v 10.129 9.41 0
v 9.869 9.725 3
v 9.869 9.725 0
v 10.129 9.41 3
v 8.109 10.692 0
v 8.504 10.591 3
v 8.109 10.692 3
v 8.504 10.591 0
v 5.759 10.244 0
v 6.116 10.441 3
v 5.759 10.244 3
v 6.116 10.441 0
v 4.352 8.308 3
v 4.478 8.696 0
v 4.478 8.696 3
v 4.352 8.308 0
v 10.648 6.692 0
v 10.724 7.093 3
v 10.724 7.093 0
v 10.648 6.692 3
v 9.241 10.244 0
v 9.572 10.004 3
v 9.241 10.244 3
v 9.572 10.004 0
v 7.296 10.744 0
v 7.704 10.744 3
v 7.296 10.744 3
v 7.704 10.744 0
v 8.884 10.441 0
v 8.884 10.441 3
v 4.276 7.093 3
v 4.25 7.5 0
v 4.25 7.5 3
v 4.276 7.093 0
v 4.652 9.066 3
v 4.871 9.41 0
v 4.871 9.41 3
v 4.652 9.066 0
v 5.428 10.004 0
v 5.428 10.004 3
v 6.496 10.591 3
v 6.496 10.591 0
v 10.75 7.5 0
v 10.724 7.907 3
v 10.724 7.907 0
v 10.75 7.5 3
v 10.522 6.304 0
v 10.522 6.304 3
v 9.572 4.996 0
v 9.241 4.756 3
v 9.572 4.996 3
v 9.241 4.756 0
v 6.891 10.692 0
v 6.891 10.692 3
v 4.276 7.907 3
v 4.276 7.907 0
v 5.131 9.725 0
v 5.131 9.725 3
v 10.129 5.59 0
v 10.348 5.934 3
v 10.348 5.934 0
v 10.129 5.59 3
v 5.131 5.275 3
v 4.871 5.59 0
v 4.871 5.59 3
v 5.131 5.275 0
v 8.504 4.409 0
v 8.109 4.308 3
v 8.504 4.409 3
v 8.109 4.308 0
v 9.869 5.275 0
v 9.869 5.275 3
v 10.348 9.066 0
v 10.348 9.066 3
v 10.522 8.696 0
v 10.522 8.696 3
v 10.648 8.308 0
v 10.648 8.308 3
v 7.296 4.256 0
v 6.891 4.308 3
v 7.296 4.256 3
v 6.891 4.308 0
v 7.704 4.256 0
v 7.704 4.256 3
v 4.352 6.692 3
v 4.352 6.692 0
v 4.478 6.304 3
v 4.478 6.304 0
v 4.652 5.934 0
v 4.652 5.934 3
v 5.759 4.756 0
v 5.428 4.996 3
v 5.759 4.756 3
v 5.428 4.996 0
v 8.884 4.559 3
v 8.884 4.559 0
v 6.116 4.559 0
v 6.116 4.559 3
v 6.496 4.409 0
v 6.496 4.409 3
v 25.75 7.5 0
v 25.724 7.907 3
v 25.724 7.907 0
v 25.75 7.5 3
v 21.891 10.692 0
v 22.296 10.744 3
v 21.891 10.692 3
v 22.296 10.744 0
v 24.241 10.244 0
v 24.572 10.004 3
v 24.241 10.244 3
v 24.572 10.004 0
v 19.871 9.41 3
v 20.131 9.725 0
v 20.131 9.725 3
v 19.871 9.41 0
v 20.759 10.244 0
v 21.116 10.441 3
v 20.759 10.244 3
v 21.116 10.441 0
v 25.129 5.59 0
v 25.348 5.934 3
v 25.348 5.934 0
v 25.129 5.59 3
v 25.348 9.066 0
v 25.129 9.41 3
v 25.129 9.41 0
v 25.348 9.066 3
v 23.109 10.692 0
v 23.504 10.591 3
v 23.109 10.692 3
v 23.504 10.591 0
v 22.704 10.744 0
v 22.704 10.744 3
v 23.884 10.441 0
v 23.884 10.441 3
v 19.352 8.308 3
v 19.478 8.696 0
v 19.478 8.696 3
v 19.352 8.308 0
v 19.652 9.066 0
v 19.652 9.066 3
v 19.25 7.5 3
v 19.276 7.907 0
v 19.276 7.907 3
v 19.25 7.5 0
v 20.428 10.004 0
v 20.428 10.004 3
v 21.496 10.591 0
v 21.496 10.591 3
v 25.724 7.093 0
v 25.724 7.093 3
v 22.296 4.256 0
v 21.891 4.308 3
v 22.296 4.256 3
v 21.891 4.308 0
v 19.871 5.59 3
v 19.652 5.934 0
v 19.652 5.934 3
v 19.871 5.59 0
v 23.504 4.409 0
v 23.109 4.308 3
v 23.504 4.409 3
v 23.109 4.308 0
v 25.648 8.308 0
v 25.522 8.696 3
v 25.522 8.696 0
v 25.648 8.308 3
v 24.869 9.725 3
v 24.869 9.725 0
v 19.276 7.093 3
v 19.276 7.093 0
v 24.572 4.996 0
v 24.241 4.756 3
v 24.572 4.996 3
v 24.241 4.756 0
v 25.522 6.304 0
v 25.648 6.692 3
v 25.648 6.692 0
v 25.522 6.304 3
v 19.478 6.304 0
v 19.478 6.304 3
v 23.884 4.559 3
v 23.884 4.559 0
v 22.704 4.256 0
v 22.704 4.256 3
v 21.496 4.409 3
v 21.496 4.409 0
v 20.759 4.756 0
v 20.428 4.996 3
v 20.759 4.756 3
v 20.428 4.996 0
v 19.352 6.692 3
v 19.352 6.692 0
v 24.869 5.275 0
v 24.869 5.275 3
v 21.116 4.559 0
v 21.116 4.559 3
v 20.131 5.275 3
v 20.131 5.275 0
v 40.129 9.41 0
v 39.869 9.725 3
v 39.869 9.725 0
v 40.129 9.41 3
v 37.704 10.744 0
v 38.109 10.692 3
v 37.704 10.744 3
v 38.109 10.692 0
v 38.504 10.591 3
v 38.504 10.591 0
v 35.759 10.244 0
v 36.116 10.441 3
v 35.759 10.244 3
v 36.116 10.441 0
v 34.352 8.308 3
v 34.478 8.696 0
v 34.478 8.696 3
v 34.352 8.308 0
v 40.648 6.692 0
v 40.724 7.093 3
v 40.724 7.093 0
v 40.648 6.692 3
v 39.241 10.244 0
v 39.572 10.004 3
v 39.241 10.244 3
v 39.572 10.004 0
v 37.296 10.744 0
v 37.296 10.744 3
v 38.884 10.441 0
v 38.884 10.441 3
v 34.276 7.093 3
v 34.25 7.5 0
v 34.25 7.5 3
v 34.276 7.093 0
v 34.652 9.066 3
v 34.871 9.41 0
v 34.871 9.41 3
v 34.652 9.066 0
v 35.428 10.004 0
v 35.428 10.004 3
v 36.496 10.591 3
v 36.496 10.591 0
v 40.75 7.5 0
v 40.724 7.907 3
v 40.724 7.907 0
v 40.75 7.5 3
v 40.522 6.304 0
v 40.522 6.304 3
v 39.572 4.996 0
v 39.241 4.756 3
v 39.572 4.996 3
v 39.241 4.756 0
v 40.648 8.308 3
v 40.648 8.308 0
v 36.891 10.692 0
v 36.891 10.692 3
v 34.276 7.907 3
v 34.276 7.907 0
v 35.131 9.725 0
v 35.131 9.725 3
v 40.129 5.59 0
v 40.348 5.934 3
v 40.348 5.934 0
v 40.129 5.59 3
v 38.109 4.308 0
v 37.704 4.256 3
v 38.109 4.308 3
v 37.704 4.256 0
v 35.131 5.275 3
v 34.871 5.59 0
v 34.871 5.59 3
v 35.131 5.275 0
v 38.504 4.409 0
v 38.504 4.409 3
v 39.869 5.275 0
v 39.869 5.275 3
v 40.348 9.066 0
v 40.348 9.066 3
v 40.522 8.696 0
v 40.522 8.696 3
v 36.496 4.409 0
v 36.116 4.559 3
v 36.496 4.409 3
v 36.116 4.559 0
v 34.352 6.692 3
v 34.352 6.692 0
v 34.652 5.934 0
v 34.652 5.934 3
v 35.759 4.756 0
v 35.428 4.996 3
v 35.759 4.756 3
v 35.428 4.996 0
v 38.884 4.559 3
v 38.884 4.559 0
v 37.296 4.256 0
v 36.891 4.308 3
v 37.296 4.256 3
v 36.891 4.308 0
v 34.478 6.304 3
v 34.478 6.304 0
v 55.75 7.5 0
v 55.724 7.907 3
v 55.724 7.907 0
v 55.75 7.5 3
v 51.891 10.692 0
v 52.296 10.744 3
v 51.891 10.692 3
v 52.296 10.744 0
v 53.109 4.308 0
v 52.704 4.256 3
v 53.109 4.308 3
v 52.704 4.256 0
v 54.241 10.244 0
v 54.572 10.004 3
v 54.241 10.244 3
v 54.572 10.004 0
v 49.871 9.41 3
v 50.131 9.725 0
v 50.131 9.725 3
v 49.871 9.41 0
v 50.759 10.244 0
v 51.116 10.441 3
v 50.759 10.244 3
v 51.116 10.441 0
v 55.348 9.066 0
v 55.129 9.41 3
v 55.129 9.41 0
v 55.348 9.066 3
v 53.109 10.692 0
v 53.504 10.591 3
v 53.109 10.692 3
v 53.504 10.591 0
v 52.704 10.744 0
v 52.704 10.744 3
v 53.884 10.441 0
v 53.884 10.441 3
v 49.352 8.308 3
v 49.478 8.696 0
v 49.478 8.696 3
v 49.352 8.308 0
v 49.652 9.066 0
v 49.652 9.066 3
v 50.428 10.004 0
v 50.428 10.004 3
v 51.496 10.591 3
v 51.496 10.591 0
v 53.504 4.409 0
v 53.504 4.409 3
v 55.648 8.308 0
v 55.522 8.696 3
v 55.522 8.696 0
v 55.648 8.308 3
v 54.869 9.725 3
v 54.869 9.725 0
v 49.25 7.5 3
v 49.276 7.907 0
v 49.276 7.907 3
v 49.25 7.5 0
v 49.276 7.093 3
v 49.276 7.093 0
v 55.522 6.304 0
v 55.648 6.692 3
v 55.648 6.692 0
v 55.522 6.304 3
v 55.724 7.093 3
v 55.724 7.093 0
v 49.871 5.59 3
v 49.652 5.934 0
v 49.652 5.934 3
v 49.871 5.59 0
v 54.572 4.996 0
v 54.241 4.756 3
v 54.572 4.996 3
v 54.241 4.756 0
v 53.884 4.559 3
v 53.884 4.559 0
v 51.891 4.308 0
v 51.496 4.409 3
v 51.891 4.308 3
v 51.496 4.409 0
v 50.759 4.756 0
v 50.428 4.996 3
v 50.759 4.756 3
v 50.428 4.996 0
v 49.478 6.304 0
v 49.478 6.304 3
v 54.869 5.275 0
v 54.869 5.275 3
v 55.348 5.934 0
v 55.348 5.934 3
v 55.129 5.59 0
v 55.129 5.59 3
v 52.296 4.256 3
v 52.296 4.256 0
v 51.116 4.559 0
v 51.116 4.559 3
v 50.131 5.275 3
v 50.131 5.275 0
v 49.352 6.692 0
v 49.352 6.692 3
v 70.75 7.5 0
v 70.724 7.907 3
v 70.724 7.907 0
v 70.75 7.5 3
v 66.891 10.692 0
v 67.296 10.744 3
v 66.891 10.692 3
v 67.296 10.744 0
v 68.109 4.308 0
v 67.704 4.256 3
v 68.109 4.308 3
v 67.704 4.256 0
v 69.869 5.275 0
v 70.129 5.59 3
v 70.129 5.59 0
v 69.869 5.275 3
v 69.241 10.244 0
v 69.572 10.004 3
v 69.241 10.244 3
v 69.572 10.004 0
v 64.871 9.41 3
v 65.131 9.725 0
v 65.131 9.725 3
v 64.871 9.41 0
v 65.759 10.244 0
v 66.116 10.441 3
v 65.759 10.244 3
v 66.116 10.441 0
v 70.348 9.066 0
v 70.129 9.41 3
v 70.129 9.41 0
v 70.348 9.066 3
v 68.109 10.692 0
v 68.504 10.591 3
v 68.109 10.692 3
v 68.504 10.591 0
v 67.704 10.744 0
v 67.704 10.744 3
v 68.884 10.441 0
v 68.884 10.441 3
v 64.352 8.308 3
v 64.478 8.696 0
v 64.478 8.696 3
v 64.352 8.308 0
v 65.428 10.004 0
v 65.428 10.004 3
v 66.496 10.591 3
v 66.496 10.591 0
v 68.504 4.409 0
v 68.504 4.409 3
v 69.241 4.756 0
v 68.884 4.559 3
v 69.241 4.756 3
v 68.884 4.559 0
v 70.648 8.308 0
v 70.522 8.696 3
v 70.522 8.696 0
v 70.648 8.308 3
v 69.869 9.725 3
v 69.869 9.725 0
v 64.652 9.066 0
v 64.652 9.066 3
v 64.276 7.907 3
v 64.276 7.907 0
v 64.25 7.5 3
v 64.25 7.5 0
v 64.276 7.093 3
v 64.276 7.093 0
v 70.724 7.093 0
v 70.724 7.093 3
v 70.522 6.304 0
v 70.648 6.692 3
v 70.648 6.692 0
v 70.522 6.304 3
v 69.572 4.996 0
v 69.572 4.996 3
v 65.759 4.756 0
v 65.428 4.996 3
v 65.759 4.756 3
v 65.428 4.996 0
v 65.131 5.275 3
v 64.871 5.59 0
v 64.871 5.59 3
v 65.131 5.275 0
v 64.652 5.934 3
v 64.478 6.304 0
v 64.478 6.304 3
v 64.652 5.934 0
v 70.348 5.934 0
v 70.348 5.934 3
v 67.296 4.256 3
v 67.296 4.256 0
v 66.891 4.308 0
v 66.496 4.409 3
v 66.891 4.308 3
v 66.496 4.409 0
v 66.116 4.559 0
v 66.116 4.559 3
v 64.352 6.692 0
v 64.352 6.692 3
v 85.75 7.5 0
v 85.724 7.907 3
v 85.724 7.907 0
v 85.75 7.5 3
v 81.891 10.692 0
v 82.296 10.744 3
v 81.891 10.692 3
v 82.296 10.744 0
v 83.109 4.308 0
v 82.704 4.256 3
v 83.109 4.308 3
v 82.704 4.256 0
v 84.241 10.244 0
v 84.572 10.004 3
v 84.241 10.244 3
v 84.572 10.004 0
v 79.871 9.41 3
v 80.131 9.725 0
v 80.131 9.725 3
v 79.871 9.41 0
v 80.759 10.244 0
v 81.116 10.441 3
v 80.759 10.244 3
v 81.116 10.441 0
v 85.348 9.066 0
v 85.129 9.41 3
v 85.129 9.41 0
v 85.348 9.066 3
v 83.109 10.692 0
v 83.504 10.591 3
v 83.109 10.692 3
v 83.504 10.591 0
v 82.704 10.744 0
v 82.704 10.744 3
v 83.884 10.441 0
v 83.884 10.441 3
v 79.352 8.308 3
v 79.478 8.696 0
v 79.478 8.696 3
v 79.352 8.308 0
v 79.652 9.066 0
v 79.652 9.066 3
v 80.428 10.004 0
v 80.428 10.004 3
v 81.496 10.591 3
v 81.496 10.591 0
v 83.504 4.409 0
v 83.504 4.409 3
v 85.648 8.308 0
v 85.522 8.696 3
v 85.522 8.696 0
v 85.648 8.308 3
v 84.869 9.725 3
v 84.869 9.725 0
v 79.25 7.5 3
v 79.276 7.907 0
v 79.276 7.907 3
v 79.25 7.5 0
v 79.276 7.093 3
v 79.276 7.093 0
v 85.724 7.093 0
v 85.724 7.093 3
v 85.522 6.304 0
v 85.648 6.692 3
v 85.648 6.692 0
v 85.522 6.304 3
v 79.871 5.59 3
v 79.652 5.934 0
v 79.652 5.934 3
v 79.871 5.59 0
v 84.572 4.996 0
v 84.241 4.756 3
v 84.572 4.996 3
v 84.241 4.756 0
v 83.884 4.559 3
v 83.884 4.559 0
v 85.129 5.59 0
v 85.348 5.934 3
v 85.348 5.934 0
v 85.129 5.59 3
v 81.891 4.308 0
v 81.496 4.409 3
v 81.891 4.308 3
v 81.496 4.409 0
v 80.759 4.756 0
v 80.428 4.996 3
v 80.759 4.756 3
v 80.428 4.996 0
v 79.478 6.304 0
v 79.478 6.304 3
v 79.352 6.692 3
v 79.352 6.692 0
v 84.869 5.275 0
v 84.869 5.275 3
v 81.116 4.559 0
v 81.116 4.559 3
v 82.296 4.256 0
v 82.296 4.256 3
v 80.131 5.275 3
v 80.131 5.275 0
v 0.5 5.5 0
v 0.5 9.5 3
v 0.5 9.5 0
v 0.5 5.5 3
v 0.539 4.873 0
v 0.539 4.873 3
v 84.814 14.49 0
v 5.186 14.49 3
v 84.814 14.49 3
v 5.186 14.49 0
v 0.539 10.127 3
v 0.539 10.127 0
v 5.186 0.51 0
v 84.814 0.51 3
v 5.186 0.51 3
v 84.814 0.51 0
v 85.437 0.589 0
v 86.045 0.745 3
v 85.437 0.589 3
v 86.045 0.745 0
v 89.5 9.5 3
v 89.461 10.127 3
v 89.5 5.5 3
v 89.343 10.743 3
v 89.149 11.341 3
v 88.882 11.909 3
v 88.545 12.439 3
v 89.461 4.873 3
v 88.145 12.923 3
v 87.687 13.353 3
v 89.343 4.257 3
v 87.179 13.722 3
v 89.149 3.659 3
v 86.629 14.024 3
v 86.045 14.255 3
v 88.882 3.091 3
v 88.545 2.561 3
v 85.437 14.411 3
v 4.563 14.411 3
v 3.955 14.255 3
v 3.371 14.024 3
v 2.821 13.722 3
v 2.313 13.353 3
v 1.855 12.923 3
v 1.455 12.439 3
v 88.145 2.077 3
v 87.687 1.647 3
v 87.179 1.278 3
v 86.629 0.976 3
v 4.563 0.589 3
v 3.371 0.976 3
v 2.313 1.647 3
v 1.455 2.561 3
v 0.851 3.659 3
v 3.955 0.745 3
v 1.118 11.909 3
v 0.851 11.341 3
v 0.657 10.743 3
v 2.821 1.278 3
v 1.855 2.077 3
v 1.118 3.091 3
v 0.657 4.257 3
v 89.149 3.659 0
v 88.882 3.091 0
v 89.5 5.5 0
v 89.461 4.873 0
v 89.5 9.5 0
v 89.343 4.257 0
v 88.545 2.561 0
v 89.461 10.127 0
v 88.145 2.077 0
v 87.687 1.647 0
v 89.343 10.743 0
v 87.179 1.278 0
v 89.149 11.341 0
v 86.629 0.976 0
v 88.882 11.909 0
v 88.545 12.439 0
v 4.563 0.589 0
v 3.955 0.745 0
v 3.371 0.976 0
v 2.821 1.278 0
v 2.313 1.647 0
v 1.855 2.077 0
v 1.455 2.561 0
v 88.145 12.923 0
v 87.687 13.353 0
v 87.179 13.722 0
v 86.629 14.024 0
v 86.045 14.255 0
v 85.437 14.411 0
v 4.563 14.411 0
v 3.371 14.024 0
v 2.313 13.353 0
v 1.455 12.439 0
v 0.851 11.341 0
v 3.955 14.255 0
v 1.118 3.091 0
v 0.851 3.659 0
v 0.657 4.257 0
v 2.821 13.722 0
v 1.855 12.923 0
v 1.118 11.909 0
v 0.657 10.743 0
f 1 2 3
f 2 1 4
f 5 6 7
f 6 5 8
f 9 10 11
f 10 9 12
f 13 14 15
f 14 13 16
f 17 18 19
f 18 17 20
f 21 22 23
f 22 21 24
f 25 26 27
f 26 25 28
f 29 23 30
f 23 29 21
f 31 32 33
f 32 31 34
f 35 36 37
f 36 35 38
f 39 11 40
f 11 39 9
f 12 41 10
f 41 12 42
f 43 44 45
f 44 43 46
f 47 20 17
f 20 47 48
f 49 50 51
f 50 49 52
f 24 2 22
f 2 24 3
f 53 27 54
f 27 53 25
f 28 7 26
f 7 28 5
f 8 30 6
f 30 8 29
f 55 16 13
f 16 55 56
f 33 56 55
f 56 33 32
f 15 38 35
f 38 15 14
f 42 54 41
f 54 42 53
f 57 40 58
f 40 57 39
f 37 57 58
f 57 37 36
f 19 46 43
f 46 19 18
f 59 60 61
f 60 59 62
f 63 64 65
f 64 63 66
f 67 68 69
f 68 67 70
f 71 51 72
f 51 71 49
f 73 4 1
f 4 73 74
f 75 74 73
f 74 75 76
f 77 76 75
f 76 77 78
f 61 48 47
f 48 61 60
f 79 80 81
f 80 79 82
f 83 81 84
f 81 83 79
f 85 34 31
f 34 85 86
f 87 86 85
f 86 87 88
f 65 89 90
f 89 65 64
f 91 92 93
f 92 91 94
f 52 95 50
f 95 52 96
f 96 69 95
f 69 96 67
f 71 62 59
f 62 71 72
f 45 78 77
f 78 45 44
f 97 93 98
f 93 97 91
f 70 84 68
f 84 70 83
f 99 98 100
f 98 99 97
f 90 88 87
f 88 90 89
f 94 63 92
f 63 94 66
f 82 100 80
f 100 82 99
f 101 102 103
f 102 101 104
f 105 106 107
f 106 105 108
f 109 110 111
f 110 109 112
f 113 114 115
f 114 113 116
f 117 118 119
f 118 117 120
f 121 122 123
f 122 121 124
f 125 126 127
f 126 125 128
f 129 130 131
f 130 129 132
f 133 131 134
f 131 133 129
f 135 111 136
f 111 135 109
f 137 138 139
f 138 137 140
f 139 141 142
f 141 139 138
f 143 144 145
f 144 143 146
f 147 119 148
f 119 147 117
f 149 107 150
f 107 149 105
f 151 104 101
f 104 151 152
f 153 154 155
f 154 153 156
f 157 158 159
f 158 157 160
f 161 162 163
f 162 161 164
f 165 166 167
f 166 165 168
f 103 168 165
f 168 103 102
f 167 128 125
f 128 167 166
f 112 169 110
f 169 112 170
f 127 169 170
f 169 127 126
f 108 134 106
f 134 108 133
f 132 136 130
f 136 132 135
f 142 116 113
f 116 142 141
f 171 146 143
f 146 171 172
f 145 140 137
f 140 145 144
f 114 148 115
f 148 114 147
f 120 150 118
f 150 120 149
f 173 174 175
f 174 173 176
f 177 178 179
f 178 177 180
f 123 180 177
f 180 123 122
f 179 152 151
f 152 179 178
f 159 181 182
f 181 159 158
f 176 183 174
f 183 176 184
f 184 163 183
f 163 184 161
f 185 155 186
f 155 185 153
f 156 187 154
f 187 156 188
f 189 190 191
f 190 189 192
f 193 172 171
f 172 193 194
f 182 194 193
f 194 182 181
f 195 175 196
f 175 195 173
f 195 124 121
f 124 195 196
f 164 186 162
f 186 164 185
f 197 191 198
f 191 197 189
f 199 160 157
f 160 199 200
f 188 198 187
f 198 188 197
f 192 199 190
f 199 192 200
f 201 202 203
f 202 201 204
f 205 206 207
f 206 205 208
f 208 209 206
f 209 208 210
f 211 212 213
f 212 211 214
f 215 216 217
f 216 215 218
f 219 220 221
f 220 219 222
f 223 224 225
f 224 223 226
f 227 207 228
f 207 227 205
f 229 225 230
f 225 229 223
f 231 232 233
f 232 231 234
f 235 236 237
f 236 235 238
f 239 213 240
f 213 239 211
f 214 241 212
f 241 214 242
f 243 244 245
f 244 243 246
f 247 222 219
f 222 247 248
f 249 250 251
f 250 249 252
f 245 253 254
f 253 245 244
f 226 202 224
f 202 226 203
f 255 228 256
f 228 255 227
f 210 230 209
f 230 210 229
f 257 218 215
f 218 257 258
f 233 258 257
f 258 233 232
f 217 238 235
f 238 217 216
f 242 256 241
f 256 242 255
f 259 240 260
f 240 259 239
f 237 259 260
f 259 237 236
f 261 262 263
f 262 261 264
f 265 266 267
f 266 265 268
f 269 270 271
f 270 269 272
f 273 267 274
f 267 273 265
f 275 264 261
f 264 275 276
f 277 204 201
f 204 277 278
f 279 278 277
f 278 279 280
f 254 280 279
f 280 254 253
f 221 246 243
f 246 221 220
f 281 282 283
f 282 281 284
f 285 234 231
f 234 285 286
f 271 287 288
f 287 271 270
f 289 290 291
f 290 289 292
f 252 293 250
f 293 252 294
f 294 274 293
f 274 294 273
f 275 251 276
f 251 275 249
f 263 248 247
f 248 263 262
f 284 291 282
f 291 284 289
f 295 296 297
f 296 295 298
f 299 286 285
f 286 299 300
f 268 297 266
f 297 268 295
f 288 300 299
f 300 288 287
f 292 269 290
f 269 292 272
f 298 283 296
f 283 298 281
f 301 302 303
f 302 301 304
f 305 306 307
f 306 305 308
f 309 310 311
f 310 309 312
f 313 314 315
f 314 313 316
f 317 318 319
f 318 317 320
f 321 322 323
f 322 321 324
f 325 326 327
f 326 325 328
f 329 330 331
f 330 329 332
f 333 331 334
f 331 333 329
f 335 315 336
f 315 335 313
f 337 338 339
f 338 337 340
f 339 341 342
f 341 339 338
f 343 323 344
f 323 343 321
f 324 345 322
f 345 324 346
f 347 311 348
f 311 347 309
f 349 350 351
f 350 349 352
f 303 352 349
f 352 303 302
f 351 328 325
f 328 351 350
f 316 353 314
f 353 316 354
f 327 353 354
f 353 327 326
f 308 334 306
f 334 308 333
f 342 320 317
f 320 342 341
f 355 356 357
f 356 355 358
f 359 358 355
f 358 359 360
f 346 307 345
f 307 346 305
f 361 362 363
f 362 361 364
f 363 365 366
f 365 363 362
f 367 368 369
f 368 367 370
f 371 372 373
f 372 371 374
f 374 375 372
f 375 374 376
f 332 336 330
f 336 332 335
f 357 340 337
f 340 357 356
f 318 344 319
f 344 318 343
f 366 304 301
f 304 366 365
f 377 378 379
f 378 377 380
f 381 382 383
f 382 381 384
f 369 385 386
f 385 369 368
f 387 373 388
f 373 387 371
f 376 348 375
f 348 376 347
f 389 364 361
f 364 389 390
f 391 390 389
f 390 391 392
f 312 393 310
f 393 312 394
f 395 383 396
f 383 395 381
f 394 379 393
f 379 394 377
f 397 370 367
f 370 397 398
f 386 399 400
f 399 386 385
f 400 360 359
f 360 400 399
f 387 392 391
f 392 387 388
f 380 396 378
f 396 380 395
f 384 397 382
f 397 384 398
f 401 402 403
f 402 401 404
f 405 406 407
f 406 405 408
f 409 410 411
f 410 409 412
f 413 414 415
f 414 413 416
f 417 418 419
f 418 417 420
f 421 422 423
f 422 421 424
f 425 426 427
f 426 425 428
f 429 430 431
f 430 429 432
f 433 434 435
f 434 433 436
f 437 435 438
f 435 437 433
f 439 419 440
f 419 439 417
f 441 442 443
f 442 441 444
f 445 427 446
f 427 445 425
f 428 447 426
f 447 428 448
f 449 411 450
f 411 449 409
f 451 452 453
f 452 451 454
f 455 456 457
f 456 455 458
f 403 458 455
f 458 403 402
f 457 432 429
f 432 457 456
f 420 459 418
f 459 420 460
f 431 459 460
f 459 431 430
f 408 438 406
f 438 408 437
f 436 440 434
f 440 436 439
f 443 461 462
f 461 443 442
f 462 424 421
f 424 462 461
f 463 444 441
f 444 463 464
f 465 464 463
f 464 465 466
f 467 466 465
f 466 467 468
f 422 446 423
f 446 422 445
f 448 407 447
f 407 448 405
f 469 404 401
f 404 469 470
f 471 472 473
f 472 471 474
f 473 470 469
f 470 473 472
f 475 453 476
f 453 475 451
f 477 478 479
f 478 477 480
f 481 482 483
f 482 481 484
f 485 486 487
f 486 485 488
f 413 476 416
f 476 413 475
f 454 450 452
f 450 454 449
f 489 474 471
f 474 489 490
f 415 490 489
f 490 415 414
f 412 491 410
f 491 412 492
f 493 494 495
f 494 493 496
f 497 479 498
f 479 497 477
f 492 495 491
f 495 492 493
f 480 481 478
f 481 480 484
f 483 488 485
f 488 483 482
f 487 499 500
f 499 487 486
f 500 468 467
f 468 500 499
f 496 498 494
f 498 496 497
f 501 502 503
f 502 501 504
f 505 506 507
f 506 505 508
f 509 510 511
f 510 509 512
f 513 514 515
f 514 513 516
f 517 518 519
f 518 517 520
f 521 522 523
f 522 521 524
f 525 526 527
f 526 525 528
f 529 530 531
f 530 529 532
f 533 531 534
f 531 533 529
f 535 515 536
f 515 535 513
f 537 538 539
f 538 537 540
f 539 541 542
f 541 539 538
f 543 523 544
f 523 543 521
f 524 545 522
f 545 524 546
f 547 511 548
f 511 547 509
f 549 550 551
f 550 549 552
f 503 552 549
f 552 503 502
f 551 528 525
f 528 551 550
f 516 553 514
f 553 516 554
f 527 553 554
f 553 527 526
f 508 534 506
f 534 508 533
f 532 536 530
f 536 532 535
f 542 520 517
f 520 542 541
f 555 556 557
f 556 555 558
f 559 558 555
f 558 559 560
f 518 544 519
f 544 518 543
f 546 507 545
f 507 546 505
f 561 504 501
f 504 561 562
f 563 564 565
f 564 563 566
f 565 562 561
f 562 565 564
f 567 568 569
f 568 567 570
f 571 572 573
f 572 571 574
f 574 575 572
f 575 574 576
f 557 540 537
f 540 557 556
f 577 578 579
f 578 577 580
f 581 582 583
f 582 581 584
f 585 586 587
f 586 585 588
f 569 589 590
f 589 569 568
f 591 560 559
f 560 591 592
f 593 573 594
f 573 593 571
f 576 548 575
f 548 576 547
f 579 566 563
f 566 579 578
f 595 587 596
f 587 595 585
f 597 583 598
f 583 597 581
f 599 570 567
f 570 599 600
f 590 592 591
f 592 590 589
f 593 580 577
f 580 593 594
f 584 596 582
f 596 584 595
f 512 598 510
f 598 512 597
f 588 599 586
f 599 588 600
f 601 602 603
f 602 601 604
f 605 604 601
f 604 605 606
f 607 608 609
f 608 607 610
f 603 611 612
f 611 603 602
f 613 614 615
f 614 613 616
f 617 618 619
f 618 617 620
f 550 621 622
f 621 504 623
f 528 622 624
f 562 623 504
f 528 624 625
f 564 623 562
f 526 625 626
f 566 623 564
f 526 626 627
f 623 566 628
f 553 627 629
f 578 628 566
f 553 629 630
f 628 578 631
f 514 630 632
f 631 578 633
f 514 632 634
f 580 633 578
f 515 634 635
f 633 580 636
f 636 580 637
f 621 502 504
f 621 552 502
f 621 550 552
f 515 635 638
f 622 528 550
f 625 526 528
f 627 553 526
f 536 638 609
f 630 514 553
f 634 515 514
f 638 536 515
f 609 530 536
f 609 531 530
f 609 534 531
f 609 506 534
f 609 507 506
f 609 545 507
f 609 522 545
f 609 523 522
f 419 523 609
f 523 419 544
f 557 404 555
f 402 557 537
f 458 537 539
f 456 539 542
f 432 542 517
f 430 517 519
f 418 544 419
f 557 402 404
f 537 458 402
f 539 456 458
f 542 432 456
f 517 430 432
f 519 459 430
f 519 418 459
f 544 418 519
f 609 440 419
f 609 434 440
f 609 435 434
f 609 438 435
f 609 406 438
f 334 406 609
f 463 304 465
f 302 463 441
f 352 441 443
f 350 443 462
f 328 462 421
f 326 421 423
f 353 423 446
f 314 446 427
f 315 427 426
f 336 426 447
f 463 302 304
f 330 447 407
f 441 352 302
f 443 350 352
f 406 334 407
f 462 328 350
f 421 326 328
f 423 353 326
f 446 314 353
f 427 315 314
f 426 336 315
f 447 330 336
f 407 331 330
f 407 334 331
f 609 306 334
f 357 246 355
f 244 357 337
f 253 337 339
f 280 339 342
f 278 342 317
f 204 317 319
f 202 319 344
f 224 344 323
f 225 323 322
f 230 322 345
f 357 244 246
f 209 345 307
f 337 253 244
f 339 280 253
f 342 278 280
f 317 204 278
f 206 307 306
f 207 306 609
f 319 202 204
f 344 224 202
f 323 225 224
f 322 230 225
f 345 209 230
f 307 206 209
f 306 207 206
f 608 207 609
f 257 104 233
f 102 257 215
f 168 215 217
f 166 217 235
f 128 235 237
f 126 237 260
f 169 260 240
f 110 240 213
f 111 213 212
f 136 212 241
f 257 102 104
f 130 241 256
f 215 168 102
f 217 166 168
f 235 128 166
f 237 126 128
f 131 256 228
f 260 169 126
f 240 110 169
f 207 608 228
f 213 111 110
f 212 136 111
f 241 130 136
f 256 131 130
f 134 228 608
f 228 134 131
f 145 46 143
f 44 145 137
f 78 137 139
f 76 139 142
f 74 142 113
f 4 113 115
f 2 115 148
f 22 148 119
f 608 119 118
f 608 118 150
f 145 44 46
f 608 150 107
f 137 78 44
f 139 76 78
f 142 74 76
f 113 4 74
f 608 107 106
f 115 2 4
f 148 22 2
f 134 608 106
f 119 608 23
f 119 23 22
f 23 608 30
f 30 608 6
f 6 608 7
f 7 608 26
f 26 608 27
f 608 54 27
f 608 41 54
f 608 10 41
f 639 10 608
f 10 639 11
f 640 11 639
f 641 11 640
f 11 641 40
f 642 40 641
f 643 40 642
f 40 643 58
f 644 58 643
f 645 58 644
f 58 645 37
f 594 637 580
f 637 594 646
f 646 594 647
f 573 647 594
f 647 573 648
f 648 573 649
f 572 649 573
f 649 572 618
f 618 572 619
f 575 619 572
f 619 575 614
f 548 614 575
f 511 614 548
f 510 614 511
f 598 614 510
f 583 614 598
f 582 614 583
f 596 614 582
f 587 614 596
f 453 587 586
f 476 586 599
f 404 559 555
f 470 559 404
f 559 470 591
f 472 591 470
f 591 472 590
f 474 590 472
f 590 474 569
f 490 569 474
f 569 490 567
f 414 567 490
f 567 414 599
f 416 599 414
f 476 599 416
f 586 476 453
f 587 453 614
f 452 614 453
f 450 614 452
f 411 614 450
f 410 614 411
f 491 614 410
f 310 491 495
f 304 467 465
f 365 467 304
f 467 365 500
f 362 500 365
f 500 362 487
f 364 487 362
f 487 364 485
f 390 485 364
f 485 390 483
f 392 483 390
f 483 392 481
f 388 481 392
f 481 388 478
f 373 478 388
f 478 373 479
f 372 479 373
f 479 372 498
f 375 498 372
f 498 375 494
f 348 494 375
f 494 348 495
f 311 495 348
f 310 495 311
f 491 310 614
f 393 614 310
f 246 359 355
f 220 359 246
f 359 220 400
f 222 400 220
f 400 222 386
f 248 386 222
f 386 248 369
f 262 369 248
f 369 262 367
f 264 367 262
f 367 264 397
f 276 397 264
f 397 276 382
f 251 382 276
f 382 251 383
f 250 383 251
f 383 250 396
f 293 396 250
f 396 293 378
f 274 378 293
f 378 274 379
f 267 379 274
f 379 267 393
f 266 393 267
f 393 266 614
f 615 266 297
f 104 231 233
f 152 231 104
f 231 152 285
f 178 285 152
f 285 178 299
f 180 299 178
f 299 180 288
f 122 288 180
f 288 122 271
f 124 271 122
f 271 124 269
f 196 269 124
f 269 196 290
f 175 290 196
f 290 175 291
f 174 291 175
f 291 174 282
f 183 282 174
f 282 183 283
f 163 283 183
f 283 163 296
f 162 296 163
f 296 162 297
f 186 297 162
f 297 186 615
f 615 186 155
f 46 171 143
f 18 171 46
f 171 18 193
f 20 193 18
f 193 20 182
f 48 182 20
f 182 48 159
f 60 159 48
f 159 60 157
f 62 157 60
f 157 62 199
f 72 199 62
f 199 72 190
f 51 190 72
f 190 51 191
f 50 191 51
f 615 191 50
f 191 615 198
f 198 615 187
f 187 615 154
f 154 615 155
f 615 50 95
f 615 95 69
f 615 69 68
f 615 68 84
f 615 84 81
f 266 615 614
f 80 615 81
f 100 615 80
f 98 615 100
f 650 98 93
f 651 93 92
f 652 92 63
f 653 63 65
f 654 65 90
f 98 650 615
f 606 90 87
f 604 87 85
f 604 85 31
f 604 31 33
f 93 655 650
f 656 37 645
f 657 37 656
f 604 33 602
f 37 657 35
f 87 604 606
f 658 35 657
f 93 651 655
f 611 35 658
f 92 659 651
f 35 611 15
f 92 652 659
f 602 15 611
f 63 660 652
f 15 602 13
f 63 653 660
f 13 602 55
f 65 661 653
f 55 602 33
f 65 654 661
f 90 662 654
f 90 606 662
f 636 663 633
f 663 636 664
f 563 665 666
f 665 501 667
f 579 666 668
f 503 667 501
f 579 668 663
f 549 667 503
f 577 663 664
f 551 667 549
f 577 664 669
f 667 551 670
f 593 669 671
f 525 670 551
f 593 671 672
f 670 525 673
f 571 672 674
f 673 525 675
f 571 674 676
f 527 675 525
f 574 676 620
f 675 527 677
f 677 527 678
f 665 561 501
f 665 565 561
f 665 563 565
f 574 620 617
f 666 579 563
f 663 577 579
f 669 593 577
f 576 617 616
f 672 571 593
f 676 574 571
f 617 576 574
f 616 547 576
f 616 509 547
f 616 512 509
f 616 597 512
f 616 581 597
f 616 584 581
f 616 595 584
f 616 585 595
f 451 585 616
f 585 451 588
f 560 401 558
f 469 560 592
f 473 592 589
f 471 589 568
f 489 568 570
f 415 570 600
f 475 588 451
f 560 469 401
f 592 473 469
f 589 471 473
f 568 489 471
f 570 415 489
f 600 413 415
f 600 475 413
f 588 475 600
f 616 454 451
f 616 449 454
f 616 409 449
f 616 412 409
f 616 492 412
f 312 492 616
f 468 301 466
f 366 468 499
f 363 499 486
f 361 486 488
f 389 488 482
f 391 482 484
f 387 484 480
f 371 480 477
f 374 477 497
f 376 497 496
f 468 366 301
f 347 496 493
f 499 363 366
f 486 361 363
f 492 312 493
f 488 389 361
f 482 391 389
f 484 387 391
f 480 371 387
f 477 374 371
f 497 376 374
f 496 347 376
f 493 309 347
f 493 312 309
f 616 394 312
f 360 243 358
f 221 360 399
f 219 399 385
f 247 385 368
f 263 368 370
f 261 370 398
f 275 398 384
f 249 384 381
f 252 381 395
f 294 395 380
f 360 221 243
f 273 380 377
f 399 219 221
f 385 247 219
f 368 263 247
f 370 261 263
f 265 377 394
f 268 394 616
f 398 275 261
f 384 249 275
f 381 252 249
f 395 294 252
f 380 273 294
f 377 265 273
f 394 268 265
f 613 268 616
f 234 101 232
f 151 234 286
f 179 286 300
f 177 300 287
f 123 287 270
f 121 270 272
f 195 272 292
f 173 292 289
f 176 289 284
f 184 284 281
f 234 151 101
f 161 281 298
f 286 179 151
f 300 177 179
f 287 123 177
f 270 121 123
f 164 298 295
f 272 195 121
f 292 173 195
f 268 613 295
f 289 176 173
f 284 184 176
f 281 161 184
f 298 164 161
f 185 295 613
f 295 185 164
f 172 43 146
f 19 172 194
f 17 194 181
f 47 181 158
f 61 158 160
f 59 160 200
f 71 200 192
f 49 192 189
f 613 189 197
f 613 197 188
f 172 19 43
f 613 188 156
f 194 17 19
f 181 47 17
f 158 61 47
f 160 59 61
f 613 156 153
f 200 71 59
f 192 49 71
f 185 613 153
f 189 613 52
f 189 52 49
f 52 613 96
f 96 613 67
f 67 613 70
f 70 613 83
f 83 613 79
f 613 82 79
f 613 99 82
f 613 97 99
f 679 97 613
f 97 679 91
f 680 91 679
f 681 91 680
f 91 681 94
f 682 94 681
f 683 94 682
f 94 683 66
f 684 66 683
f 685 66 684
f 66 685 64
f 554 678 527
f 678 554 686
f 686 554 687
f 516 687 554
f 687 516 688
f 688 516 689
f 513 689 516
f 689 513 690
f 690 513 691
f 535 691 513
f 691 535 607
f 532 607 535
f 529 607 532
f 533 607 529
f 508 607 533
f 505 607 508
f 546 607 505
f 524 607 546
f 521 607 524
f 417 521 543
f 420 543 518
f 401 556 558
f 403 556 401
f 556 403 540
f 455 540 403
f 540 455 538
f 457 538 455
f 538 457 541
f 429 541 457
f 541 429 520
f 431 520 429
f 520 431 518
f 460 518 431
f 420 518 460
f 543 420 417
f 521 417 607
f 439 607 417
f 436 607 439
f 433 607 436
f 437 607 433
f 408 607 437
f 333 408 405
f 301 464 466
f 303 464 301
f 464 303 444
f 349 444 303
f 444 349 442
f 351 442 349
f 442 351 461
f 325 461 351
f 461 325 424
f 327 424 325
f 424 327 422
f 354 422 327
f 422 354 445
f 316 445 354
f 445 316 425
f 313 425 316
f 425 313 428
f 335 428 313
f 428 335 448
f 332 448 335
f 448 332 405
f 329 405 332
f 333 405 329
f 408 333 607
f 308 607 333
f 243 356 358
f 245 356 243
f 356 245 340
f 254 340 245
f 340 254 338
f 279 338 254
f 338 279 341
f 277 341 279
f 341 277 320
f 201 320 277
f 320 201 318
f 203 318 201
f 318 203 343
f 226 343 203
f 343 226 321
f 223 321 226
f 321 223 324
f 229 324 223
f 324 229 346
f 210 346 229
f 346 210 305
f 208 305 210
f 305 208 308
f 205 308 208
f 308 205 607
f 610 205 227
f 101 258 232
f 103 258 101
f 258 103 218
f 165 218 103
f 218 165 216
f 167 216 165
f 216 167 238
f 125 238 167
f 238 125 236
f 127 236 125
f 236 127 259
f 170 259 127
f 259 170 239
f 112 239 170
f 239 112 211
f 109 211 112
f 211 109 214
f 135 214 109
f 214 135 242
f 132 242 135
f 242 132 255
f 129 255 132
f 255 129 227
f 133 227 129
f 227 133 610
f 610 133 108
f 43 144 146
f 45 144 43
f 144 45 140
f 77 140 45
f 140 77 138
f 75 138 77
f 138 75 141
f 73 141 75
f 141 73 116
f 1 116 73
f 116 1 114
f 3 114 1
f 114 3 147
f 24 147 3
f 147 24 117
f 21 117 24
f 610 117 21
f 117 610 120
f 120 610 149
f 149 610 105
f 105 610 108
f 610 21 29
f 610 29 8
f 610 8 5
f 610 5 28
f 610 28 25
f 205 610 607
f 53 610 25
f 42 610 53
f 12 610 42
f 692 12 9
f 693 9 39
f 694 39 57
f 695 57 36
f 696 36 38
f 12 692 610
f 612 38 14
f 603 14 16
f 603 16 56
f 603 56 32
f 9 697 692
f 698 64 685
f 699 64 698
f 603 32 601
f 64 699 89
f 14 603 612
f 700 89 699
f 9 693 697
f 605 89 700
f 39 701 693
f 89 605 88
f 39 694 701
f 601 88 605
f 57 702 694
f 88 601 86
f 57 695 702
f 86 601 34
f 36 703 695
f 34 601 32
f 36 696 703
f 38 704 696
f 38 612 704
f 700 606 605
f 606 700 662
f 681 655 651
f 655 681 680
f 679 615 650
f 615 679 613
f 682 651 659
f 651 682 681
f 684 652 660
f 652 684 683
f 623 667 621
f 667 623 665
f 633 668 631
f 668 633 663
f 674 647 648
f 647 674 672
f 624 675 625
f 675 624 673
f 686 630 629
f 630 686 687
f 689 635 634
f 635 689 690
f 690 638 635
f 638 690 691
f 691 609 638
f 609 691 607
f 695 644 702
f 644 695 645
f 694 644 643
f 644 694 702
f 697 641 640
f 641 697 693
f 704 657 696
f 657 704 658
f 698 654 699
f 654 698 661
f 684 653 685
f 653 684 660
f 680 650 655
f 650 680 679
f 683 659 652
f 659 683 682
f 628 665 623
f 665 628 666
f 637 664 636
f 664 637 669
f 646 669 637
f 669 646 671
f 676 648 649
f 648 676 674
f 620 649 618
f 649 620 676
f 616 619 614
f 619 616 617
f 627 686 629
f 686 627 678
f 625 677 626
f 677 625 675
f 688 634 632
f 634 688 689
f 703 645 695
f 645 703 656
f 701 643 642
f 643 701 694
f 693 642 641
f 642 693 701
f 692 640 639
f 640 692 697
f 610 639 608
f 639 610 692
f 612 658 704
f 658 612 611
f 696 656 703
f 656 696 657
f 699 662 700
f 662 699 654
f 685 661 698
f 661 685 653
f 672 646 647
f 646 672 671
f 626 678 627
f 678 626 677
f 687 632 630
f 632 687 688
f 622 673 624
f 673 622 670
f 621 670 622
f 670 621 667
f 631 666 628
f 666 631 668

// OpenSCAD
// Generated by SolidPython 1.1.3 on 2023-01-30 13:48:21
$fn = 50;


difference() {
	union() {
		translate(v = [45.0000000000, 7.5000000000, 0]) {
			rotate(a = [0, 0, 0]) {
				hull() {
					translate(v = [-39.5000000000, 2.0000000000, 0]) {
						rotate(a = [0, 0, 0]) {
							translate(v = [0, 0, 0]) {
								rotate(a = [0, 0, 0]) {
									cylinder(h = 3, r = 5);
								}
							}
						}
					}
					translate(v = [39.5000000000, 2.0000000000, 0]) {
						rotate(a = [0, 0, 0]) {
							translate(v = [0, 0, 0]) {
								rotate(a = [0, 0, 0]) {
									cylinder(h = 3, r = 5);
								}
							}
						}
					}
					translate(v = [-39.5000000000, -2.0000000000, 0]) {
						rotate(a = [0, 0, 0]) {
							translate(v = [0, 0, 0]) {
								rotate(a = [0, 0, 0]) {
									cylinder(h = 3, r = 5);
								}
							}
						}
					}
					translate(v = [39.5000000000, -2.0000000000, 0]) {
						rotate(a = [0, 0, 0]) {
							translate(v = [0, 0, 0]) {
								rotate(a = [0, 0, 0]) {
									cylinder(h = 3, r = 5);
								}
							}
						}
					}
				}
			}
		}
	}
	union() {
		translate(v = [7.5000000000, 7.5000000000, 0]) {
			rotate(a = [0, 0, 0]) {
				translate(v = [0, 0, -50]) {
					rotate(a = [0, 0, 0]) {
						cylinder(h = 100, r = 3.2500000000);
					}
				}
			}
		}
		translate(v = [22.5000000000, 7.5000000000, 0]) {
			rotate(a = [0, 0, 0]) {
				translate(v = [0, 0, -50]) {
					rotate(a = [0, 0, 0]) {
						cylinder(h = 100, r = 3.2500000000);
					}
				}
			}
		}
		translate(v = [37.5000000000, 7.5000000000, 0]) {
			rotate(a = [0, 0, 0]) {
				translate(v = [0, 0, -50]) {
					rotate(a = [0, 0, 0]) {
						cylinder(h = 100, r = 3.2500000000);
					}
				}
			}
		}
		translate(v = [52.5000000000, 7.5000000000, 0]) {
			rotate(a = [0, 0, 0]) {
				translate(v = [0, 0, -50]) {
					rotate(a = [0, 0, 0]) {
						cylinder(h = 100, r = 3.2500000000);
					}
				}
			}
		}
		translate(v = [67.5000000000, 7.5000000000, 0]) {
			rotate(a = [0, 0, 0]) {
				translate(v = [0, 0, -50]) {
					rotate(a = [0, 0, 0]) {
						cylinder(h = 100, r = 3.2500000000);
					}
				}
			}
		}
		translate(v = [82.5000000000, 7.5000000000, 0]) {
			rotate(a = [0, 0, 0]) {
				translate(v = [0, 0, -50]) {
					rotate(a = [0, 0, 0]) {
						cylinder(h = 100, r = 3.2500000000);
					}
				}
			}
		}
	}
}
/***********************************************
*********      SolidPython code:      **********
************************************************
 
from solid import *
import os
import subprocess

import oomB

import opsc_library_gen

mode = "laser"
#mode = "3d_print"

defined_objects = {}

radius_dict = {}
countersunk_dict = {}


def set_mode(m):
    global mode
    mode = m
    radius_dict['M6'] = 6.5/2
    radius_dict['M3'] = 3.3/2
    if mode == "laser":
        radius_dict['M6'] = 6/2
        radius_dict['M3'] = 3/2

    countersunk_dict['M3'] = {}
    countersunk_dict['M3']['little_rad'] = radius_dict['M3']
    countersunk_dict['M3']['big_rad'] = (5.5+0.6)/2
    if mode == "laser":
        countersunk_dict['M3']['big_rad'] = (4.75+0.6)/2
        countersunk_dict['M3']['little_rad'] = (4.75+0.6)/2

    countersunk_dict['M3']['height'] = 1.7


def opsc_make_object(filename, objects, save_type="none",resolution=50, layers = 1, tilediff = 200, mode="laser"):
    set_mode(mode)
    save_type = save_type.lower()
    os.makedirs(os.path.dirname(filename), exist_ok=True)
    final_object = opsc_get_object(objects)
    # Save the final object to the specified filename    
    scad_render_to_file(final_object, filename, file_header='$fn = %s;' % resolution, include_orig_code=True)
    if mode == "laser":
        filename_laser = filename.replace(".scad","-flat.scad")
        scad_render_to_file(getLaser(final_object, layers=layers, tilediff=tilediff), filename_laser, file_header='$fn = %s;' % resolution, include_orig_code=True)
        if save_type == "all":
            saveToAll(filename_laser)
        elif save_type == "dxf":
            saveToDxf(filename_laser)
    if save_type == "all":
        saveToAll(filename)
    elif save_type == "dxf":
        saveToDxf(filename)


def opsc_get_object(objects):
    # Create the solidpython objects
    positive_objects = [get_opsc_item(obj) for obj in objects if obj['type'] == 'positive']
    negative_objects = [get_opsc_item(obj) for obj in objects if obj['type'] == 'negative']
    # Union the positive objects
    positive_object = union()(*positive_objects)
    # Union the negative objects
    negative_object = union()(*negative_objects)
    # Create the final object by subtracting the negative objects from the positive objects
    return difference()(positive_object, negative_object)

def get_opsc_item(params):
    # A dictionary to map radius string values to numerical values
    #radius_dict = {'small': 5, 'medium': 10, 'large': 15}
    # An array of function names for basic shapes
    basic_shapes = ['cube', 'sphere', 'cylinder']
    
    # An array of function names for other shapes
    other_shapes = ['hole', 'slot', 'rounded_rectangle', 'countersunk']
    


    # Convert radius to r if present, and remove radius from the params dictionary
    if 'radius' in params:
        if isinstance(params['radius'], str):
            # Use the radius_dict to map the radius string value to a numerical value
            params['r'] = radius_dict[params['radius']]
        else:
            params['r'] = params['radius']
        del params['radius']
    

    # Check if the object type is a basic shape
    if params['shape'] in basic_shapes:
        # Remove shape and unexpected dictionary values
        allowed_keys = {'size', 'r', 'r1', 'r2', 'd', 'h', 'rw', 'rh', 'dw', 'dh'}
        shape_params = {k: v for k, v in params.items() if k in allowed_keys}

        # Call the corresponding function for the shape parameter, using ** notation to pass the shape_params dictionary as keyword arguments
        return get_opsc_transform(params,globals()[params['shape']](**shape_params))
    
    # If the object type is not a basic shape, check if it's a defined object or one of the other shapes
    elif params['shape'] in other_shapes:
        # Call the corresponding function for the shape parameter, passing the params dictionary as an argument
        p2 = copy.deepcopy(params)
        p2["pos"] = [0,0,0]
        return get_opsc_transform(params,globals()[params['shape']](p2))
    
    # If the object is not a basic shape or a defined object, try to import it from a .scad file
    else:
        obj = defined_objects[params['shape']]
        return get_opsc_transform(params,obj)

def get_opsc_transform(params, solid_obj):
    # Rotate the object based on the 'rot' field in the params dictionary, or the 'rotX', 'rotY', and 'rotZ' fields if 'rot' is not present
    rot = params.get('rot', [])
    if rot:
        rotX, rotY, rotZ = rot
    else:
        rotX = params.get('rotX', 0)
        rotY = params.get('rotY', 0)
        rotZ = params.get('rotZ', 0)
    solid_obj = rotate([rotX, rotY, rotZ])(solid_obj)

    # Translate the object based on the 'pos' field in the params dictionary, or the 'x', 'y', and 'z' fields if 'pos' is not present
    pos = params.get('pos', [])
    if pos:
        x, y, z = pos
    else:
        x = params.get('x', 0)
        y = params.get('y', 0)
        z = params.get('z', 0)
    solid_obj = translate([x, y, z])(solid_obj)
    return solid_obj


import random

def opsc_easy_array(type, shape, repeats, pos_start, shift_arr, **kwargs):
    for i in range(0,3):
        repeats.append(1)
        pos_start.append(0)
        shift_arr.append(0)
    return_objects = []

    for x in range(0,repeats[0]):
        for y in range(0,repeats[1]):
            for z in range(0,repeats[2]):
                return_objects.append(opsc_easy(type, shape, pos=[pos_start[0]+x*shift_arr[0],pos_start[1]+y*shift_arr[1],pos_start[2]+z*shift_arr[2]], **kwargs))
    return return_objects                



def opsc_easy(type, shape, **kwargs):
    obj = {
        'type': type,
        'shape': shape
    }
    for param in ['size', 'r', 'r1', 'r2', 'd', 'h', 'rw', 'rh', 'dw', 'dh', 'pos', 'x', 'y', 'z', 'rot', 'rotX', 'rotY', 'rotZ', "w"]:
        if param in kwargs:
            obj[param] = kwargs[param]
    return obj

def hole(params):
    p2 = copy.deepcopy(params)  
    # Check if the radius is a string and replace it with the corresponding value from the dictionary
    if isinstance(p2['r'], str):
        p2['r'] = radius_dict[p2['r']]
    
    # Set the height to 100 if not specified
    if 'h' not in p2:
        p2['h'] = 100
        p2["pos"] = [0,0,-50]
    p2["center"] = True
    # Create the cylinder object
    p2["shape"] = "cylinder"
    p2["type"] = "positive"

    return get_opsc_item(p2)

import copy

def countersunk(params):
    p2 = copy.deepcopy(params)
    counter_rad = p2['r']
    p2['r'] = radius_dict[p2['r']]
    hp = copy.deepcopy(p2)
    hp["type"] = "positive"
    hp["shape"] = "hole"
    del hp["rot"]
    hol = get_opsc_item(hp)
    
    cp = copy.deepcopy(p2)
    cp["h"] = countersunk_dict[counter_rad]["height"]
    cp["r2"] = countersunk_dict[counter_rad]["little_rad"]
    cp["r1"] = countersunk_dict[counter_rad]["big_rad"]
    del cp["r"]
    del cp["rot"]
    cp["type"] = "positive"
    cp["shape"] = "cylinder"
    cp["pos"] = [0,0,0]

    top = get_opsc_item(cp)
    return union()(hol,top)



def slot(params):  
    p2 = copy.deepcopy(params) 
    if isinstance(p2['r'], str):
        p2['r'] = radius_dict[p2['r']]
    p2["type"] = "positive"
    p2["shape"] = "hole"
    del p2["rot"]
    p2["pos"] = [0,0,0]
    left = copy.deepcopy(p2)
    right = copy.deepcopy(p2)
    left["pos"][0] = p2["w"] / 2 - p2["r"] 
    
    right["pos"][0] = -p2["w"] / 2 + p2["r"] 
    pass
    leftObj = get_opsc_item(left)
    rightObj = get_opsc_item(right)
    return hull()(leftObj, rightObj)

def rounded_rectangle(params):   
    p2 = copy.deepcopy(params) 
    p2["h"] = p2["size"][2]
    p2["pos"] = p2.get("pos", [0, 0, 0]) 
    p2["type"] = "positive"
    p2["shape"] = "hole"
    p2["pos"] = [0,0,0]
    
    if 'rot' in p2:
        del p2["rot"]   
    if 'r' not in p2:
        p2["r"] = 5 
    tl = copy.deepcopy(p2)
    tr = copy.deepcopy(p2)
    bl = copy.deepcopy(p2)
    br = copy.deepcopy(p2)
    tl["pos"][0] = -(p2["size"][0] - p2["r"]*2)/2
    tl["pos"][1] = (p2["size"][1] - p2["r"]*2)/2
    tr["pos"][0] = (p2["size"][0] - p2["r"]*2)/2
    tr["pos"][1] = (p2["size"][1] - p2["r"]*2)/2
    bl["pos"][0] = -(p2["size"][0] - p2["r"]*2)/2
    bl["pos"][1] = -(p2["size"][1] - p2["r"]*2)/2
    br["pos"][0] = (p2["size"][0] - p2["r"]*2)/2
    br["pos"][1] = -(p2["size"][1] - p2["r"]*2)/2
    del tl["size"]
    del tr["size"]
    del bl["size"]
    del br["size"]
    tlo = get_opsc_item(tl)
    tro = get_opsc_item(tr)
    blo = get_opsc_item(bl)
    bro = get_opsc_item(br)    
    return hull()(tlo, tro, blo, bro)



def import_scad_object(filename):
    # Import the .scad file and convert it to a solidpython object
    #filename = "parts"
    obj = import_scad(filename)
    return obj.main()
    


import os
import solid as solidpython

# A dictionary to store the defined objects


def load_scad_objects():
    opsc_library_gen.gen_library(defined_objects)

import random

def test(num_objects):
    objects = []
    for i in range(num_objects):
        # Choose a random shape
        #shape = random.choice(['cube', 'sphere', 'cylinder', 'hole', 'slot', "rounded_rectangle"])
        shape = random.choice(["rounded_rectangle"])

        # Choose a random type
        type = random.choice(['positive', 'negative'])
        
        # Create an empty object dictionary
        obj = {'shape': shape, 'type': type}
        
        # Set shape-specific parameters
        if obj['shape'] in ['cube']:
            obj['size'] =  [random.uniform(5, 15), random.uniform(5, 15), random.uniform(5, 15)]
        if obj['shape'] in ['rounded_rectangle']:
            obj['size'] =  [random.uniform(5, 15), random.uniform(5, 15), random.uniform(5, 15)]
            obj['r'] = random.uniform(0.5, 5)
        elif obj['shape'] == 'sphere':
            obj['r'] = random.uniform(5, 15)
        elif obj['shape'] in ['cylinder', 'hole']:
            obj['r'] = random.uniform(0.5, 5)
            obj['h'] = random.uniform(5, 15)
        elif obj['shape'] == 'slot':
            obj['r'] = random.uniform(0.5, 5)
            obj['h'] = random.uniform(5, 15)
            obj['w'] = random.uniform(5, 15)
        
        # Set a random position and rotation
        obj['pos'] = [random.uniform(-20, 20), random.uniform(-20, 20), random.uniform(-20, 20)]
        obj['rot'] = [random.uniform(-180, 180), random.uniform(-180, 180), random.uniform(-180, 180)]
        
        # Add the object to the list
        objects.append(obj)
    return objects

####### old file saving
def saveToAll(fileIn):
    saveToDxf(fileIn)
    saveToPng(fileIn)
    saveToStl(fileIn)
    saveToSvg(fileIn)

def saveToDxf(fileIn, fileOut="", copy_to_laser=True):
    if fileOut == "":
        fileOut = fileIn.replace(".scad",".dxf")
    saveToFile(fileIn, fileOut)


    
def saveToPng(fileIn, fileOut="",extra="--render"):
    if fileOut == "":
        fileOut = fileIn.replace(".scad",".png")
    saveToFile(fileIn, fileOut)

def saveToStl(fileIn, fileOut=""):
    if fileOut == "":
        fileOut = fileIn.replace(".scad",".stl")
    saveToFile(fileIn, fileOut)
    
def saveToSvg(fileIn, fileOut=""):
    if fileOut == "":
        fileOut = fileIn.replace(".scad",".svg")
    saveToFile(fileIn, fileOut)

def saveToFile(fileIn, fileOut,extra=""):
    #extra = extra + " --colorscheme Tomorrow"

    launchStr = 'openscad -o "' + fileOut + '"' + extra + ' "' + fileIn + '"'
    if ".png" in fileOut:
        launchStr = launchStr + " --render"
    print("            saveToFile launch string: " + launchStr)
    subprocess.run(launchStr)
    x=0

def getLaser(final_object,start=1.5,layers=1,thickness=3,tilediff=200):
        rv= []

        for x in range(layers):
            rv.append(translate([0,x*tilediff,0])(
                    projection()(
                        intersection()(translate([-500,-500,start+x*thickness])(cube(size=[1000,1000,0.1])),
                            final_object
                        )
                    )
            )
            )
            
        return union()(rv)

set_mode("laser")
load_scad_objects() 
 
************************************************/
